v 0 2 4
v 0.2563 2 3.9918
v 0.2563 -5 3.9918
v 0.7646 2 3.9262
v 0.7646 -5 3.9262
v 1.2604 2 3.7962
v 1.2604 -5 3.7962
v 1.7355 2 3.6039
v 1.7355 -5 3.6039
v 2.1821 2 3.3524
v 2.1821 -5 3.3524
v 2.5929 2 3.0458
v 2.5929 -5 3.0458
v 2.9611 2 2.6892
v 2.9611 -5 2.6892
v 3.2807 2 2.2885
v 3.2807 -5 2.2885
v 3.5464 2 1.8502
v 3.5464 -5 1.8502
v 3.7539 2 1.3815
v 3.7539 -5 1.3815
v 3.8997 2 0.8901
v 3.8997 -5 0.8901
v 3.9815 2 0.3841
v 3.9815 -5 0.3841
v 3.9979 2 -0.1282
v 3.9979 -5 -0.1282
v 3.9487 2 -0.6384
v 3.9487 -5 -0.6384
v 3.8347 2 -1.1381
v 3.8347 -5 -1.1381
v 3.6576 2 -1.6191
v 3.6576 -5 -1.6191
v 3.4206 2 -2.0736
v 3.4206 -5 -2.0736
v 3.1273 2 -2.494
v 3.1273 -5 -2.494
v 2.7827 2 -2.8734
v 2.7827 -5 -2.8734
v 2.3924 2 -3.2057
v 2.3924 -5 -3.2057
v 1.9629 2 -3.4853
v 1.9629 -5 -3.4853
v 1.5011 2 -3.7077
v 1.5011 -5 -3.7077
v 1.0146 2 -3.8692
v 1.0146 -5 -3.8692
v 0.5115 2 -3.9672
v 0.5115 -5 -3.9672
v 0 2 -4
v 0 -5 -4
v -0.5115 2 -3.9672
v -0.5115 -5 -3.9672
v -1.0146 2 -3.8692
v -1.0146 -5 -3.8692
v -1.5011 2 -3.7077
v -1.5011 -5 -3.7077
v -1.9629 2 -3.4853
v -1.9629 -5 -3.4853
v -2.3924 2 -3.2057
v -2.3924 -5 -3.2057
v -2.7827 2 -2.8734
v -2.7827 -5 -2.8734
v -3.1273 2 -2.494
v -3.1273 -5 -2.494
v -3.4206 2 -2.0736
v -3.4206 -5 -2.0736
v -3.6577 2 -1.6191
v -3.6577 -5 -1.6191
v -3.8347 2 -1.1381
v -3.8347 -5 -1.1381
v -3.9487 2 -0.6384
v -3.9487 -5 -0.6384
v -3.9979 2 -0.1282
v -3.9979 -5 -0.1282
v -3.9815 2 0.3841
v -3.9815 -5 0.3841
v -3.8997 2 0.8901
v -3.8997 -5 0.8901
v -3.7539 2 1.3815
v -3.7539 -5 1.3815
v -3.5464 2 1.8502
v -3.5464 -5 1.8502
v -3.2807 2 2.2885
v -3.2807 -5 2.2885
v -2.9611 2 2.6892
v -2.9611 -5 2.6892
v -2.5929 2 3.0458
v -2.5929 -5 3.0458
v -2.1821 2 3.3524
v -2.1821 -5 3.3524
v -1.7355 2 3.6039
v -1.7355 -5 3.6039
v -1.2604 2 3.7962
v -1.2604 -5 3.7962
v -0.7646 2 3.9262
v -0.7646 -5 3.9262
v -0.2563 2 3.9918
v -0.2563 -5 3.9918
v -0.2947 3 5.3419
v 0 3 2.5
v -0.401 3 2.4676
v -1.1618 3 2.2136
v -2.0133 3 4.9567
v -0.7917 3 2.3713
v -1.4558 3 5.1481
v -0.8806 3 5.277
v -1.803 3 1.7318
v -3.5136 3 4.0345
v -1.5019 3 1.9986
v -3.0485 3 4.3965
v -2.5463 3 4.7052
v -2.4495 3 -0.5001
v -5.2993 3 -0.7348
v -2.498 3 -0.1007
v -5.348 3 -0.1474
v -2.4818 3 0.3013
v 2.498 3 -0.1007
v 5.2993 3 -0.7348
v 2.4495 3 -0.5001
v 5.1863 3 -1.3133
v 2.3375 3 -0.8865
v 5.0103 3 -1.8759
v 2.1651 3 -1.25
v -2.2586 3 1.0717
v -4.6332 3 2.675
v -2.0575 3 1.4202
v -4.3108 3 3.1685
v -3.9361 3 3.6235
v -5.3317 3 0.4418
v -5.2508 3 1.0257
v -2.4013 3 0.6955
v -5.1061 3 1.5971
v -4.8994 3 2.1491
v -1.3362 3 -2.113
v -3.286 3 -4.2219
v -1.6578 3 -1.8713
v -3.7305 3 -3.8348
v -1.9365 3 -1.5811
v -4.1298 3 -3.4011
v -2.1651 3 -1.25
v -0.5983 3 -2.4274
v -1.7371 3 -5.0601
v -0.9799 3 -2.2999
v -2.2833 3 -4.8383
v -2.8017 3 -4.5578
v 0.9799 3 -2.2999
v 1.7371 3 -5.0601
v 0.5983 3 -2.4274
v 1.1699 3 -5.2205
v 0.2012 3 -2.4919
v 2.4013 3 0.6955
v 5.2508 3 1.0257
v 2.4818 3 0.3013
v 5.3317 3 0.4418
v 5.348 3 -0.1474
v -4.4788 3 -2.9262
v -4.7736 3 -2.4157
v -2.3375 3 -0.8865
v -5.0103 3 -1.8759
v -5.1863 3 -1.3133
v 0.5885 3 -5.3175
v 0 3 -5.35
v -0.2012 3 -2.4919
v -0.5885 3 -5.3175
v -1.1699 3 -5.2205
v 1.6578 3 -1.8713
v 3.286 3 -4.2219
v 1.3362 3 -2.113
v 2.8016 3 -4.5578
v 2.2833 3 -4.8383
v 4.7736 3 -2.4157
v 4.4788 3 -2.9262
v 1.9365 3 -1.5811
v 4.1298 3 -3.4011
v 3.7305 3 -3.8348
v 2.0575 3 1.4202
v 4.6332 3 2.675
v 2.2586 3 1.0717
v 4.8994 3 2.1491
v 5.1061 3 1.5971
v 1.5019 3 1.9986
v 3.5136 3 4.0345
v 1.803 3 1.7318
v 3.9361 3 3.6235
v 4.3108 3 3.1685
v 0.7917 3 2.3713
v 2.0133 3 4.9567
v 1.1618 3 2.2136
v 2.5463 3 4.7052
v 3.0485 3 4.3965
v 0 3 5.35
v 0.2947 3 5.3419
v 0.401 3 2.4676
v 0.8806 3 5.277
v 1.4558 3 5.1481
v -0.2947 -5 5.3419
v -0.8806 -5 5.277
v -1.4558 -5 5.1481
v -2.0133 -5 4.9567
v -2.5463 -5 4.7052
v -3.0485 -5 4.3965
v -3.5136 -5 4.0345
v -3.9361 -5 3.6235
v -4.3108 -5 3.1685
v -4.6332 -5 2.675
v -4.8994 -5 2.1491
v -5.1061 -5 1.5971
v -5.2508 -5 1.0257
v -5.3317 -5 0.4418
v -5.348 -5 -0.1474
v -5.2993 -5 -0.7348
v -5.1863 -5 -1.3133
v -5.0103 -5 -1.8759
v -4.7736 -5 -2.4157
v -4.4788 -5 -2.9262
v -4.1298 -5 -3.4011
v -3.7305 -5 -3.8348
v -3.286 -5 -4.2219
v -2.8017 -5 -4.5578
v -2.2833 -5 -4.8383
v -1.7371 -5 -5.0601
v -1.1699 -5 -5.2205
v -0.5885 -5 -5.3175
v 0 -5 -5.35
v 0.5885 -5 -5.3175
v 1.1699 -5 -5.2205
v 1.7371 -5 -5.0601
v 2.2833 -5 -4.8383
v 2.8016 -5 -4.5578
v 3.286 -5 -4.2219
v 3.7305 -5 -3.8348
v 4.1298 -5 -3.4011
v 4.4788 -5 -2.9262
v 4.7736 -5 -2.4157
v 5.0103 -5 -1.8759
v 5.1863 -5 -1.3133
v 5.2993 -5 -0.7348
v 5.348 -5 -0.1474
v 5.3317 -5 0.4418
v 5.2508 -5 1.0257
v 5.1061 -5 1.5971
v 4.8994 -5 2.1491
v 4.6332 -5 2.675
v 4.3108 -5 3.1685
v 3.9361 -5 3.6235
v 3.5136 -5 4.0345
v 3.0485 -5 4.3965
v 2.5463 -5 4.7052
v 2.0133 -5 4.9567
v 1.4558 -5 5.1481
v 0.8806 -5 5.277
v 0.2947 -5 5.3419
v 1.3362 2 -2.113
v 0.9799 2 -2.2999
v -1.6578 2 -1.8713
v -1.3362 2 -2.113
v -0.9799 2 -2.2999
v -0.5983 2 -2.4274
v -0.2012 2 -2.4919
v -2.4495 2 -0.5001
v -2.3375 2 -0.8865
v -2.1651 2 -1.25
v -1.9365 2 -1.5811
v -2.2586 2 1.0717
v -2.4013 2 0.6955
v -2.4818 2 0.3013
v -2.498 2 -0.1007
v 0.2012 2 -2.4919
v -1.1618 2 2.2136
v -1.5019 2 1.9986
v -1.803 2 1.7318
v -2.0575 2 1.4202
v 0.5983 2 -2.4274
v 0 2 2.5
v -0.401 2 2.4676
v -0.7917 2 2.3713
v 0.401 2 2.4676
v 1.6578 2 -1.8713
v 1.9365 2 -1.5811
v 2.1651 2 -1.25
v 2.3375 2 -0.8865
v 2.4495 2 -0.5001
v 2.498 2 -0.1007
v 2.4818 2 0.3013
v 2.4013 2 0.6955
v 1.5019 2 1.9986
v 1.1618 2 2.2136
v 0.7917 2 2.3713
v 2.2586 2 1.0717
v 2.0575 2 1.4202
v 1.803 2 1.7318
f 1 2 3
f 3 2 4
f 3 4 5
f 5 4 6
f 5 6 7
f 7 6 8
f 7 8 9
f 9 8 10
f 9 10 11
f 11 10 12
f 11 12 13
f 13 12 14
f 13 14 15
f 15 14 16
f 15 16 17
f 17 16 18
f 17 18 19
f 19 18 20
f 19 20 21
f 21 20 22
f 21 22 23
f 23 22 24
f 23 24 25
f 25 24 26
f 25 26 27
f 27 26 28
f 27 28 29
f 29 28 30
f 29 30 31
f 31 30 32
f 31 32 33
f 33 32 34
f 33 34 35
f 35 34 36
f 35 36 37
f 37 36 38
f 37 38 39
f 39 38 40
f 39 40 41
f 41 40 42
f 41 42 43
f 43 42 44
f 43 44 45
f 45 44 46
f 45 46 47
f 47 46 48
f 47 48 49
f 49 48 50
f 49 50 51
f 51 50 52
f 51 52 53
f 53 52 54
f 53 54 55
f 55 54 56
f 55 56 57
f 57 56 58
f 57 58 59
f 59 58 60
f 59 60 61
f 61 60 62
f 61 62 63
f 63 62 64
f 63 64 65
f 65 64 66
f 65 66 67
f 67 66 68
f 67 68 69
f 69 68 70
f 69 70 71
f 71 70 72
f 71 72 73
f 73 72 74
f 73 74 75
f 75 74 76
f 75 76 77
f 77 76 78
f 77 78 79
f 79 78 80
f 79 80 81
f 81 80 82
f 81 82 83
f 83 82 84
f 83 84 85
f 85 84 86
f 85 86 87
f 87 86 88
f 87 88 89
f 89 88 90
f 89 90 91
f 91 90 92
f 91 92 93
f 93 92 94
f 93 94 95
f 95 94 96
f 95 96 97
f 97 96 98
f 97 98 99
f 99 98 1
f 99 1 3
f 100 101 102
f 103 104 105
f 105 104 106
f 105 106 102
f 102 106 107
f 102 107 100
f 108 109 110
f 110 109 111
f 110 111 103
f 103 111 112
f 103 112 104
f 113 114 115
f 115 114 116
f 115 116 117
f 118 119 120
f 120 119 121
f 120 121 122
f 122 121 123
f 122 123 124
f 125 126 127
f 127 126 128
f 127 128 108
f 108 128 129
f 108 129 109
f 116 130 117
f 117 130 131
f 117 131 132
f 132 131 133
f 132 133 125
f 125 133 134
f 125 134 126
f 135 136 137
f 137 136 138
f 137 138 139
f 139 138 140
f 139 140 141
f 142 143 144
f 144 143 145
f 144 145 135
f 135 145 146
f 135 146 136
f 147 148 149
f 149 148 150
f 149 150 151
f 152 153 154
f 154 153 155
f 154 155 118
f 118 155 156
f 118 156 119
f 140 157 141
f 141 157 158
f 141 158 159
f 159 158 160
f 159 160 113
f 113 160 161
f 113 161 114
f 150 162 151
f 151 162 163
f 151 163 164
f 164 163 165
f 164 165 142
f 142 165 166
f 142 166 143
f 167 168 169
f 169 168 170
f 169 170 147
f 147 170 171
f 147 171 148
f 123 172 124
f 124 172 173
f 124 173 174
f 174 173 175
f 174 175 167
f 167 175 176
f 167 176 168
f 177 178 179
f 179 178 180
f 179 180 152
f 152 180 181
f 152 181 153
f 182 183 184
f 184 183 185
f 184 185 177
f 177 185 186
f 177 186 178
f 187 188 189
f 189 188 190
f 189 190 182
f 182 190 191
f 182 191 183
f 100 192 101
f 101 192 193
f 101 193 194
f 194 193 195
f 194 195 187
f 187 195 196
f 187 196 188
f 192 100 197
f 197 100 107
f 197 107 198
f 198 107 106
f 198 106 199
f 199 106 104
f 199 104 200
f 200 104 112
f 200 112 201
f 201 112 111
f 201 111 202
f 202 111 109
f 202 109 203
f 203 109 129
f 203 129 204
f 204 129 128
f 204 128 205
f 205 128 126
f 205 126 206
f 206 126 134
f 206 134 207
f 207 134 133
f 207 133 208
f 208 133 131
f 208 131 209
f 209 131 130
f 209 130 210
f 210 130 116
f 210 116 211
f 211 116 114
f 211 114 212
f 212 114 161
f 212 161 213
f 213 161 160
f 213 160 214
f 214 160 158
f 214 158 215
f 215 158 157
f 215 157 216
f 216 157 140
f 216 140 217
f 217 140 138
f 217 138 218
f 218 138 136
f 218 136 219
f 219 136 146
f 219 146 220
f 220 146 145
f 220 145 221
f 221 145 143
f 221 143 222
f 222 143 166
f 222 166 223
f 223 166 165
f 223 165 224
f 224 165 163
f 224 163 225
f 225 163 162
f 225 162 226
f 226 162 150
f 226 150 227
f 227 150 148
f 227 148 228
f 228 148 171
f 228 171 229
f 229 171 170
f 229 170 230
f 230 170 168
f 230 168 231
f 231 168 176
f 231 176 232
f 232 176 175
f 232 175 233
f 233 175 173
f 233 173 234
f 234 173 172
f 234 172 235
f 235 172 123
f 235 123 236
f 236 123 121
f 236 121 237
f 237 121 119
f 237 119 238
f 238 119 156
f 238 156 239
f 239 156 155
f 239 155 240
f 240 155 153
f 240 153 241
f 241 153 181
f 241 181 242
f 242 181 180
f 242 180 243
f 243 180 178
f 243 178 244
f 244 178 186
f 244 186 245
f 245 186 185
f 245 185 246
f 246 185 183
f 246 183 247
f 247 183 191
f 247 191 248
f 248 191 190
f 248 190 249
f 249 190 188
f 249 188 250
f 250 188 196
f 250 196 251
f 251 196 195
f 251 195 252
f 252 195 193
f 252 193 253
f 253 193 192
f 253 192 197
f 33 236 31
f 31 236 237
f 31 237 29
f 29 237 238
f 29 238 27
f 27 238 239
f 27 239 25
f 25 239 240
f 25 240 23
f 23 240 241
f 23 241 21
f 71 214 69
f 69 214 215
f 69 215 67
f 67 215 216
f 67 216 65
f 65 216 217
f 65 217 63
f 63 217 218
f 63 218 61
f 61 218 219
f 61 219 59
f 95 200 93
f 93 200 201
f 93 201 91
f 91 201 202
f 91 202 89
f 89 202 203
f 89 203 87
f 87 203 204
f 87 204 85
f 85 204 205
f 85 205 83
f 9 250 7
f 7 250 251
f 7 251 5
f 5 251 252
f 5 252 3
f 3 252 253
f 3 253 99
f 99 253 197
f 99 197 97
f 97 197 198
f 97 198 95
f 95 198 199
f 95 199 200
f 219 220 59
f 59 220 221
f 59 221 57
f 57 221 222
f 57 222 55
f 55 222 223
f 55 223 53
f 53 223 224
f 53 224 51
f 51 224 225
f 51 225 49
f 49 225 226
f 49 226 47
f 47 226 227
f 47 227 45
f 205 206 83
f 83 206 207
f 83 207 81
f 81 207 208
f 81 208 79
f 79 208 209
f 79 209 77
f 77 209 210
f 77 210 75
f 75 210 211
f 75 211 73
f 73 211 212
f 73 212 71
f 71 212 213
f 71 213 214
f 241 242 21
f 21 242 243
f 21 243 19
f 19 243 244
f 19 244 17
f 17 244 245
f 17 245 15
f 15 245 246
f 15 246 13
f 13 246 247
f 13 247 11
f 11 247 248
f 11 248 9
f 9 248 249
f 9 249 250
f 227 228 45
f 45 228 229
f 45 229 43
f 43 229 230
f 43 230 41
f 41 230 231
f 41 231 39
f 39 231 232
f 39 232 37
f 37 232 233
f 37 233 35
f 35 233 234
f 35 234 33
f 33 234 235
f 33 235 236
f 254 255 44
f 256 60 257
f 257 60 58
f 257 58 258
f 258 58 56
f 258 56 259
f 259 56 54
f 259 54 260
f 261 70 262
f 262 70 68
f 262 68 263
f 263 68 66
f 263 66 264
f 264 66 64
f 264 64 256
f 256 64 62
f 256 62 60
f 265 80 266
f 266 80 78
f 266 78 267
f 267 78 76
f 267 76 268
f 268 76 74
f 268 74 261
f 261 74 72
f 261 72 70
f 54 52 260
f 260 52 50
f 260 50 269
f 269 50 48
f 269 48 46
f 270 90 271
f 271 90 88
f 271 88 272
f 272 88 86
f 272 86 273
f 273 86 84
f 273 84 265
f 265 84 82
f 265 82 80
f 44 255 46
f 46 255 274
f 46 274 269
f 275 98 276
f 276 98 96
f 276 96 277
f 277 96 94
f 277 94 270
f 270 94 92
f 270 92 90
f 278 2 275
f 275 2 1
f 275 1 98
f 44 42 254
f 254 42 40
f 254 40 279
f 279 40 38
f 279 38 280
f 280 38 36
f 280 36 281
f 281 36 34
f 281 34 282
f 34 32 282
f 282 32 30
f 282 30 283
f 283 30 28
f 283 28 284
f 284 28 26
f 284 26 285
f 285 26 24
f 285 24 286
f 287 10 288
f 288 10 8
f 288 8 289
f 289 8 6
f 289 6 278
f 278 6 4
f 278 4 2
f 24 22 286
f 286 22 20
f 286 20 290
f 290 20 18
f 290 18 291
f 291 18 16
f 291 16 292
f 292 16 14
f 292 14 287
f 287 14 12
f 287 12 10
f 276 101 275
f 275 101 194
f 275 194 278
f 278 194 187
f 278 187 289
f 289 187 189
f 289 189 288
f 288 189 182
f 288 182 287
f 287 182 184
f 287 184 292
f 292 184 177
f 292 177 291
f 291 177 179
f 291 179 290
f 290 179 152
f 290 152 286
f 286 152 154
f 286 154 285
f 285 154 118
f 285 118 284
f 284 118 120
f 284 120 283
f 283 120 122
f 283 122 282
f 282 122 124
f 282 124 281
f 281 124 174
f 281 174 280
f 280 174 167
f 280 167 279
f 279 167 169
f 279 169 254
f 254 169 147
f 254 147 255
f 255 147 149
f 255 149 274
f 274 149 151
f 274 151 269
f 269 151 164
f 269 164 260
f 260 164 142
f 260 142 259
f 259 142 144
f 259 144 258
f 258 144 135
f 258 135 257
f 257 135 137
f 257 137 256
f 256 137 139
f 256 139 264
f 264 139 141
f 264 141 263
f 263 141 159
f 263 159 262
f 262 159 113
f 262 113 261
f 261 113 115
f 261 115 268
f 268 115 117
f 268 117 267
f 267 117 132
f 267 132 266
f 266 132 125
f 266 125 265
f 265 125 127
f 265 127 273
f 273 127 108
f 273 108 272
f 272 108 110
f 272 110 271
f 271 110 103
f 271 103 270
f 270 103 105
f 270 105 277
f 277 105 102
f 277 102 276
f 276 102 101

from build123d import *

# Parameters (mm, degrees)
SKETCH_1_R          = 5.35
SKETCH_1_R_2        = 4
EXTRUDE_1_DEPTH     = 3
SKETCH_2_R          = 5.35
SKETCH_2_R_2        = 4
EXTRUDE_2_DEPTH     = 5
SKETCH_3_R          = 4
EXTRUDE_3_DEPTH     = 1
SKETCH_4_R          = 2.5
CUT_EXTRUDE_1_DEPTH = 1


with BuildPart() as part:
    # 草图1 → 凸台-拉伸1 (new body)
    with BuildSketch(Plane(origin=(0, 0, 0), x_dir=(1, 0, 0), z_dir=(0, 1, 0))):
        Circle(SKETCH_1_R)
        Circle(SKETCH_1_R_2, mode=Mode.SUBTRACT)
    extrude(amount=EXTRUDE_1_DEPTH)

    # 草图2 → 凸台-拉伸2 (add)
    with BuildSketch(Plane.XZ):
        Circle(SKETCH_2_R)
        Circle(SKETCH_2_R_2, mode=Mode.SUBTRACT)
    extrude(amount=EXTRUDE_2_DEPTH)

    # 草图3 → 凸台-拉伸3 (add)
    with BuildSketch(Plane(origin=(0, 3, 0), x_dir=(1, 0, 0), z_dir=(0, 1, 0))):
        Circle(SKETCH_3_R)
    extrude(amount=-EXTRUDE_3_DEPTH)

    # 草图4 → 切除-拉伸1 (cut)
    with BuildSketch(Plane(origin=(0, 3, 0), x_dir=(1, 0, 0), z_dir=(0, 1, 0))):
        Circle(SKETCH_4_R)
    extrude(amount=-CUT_EXTRUDE_1_DEPTH, mode=Mode.SUBTRACT)


solid = part.part
